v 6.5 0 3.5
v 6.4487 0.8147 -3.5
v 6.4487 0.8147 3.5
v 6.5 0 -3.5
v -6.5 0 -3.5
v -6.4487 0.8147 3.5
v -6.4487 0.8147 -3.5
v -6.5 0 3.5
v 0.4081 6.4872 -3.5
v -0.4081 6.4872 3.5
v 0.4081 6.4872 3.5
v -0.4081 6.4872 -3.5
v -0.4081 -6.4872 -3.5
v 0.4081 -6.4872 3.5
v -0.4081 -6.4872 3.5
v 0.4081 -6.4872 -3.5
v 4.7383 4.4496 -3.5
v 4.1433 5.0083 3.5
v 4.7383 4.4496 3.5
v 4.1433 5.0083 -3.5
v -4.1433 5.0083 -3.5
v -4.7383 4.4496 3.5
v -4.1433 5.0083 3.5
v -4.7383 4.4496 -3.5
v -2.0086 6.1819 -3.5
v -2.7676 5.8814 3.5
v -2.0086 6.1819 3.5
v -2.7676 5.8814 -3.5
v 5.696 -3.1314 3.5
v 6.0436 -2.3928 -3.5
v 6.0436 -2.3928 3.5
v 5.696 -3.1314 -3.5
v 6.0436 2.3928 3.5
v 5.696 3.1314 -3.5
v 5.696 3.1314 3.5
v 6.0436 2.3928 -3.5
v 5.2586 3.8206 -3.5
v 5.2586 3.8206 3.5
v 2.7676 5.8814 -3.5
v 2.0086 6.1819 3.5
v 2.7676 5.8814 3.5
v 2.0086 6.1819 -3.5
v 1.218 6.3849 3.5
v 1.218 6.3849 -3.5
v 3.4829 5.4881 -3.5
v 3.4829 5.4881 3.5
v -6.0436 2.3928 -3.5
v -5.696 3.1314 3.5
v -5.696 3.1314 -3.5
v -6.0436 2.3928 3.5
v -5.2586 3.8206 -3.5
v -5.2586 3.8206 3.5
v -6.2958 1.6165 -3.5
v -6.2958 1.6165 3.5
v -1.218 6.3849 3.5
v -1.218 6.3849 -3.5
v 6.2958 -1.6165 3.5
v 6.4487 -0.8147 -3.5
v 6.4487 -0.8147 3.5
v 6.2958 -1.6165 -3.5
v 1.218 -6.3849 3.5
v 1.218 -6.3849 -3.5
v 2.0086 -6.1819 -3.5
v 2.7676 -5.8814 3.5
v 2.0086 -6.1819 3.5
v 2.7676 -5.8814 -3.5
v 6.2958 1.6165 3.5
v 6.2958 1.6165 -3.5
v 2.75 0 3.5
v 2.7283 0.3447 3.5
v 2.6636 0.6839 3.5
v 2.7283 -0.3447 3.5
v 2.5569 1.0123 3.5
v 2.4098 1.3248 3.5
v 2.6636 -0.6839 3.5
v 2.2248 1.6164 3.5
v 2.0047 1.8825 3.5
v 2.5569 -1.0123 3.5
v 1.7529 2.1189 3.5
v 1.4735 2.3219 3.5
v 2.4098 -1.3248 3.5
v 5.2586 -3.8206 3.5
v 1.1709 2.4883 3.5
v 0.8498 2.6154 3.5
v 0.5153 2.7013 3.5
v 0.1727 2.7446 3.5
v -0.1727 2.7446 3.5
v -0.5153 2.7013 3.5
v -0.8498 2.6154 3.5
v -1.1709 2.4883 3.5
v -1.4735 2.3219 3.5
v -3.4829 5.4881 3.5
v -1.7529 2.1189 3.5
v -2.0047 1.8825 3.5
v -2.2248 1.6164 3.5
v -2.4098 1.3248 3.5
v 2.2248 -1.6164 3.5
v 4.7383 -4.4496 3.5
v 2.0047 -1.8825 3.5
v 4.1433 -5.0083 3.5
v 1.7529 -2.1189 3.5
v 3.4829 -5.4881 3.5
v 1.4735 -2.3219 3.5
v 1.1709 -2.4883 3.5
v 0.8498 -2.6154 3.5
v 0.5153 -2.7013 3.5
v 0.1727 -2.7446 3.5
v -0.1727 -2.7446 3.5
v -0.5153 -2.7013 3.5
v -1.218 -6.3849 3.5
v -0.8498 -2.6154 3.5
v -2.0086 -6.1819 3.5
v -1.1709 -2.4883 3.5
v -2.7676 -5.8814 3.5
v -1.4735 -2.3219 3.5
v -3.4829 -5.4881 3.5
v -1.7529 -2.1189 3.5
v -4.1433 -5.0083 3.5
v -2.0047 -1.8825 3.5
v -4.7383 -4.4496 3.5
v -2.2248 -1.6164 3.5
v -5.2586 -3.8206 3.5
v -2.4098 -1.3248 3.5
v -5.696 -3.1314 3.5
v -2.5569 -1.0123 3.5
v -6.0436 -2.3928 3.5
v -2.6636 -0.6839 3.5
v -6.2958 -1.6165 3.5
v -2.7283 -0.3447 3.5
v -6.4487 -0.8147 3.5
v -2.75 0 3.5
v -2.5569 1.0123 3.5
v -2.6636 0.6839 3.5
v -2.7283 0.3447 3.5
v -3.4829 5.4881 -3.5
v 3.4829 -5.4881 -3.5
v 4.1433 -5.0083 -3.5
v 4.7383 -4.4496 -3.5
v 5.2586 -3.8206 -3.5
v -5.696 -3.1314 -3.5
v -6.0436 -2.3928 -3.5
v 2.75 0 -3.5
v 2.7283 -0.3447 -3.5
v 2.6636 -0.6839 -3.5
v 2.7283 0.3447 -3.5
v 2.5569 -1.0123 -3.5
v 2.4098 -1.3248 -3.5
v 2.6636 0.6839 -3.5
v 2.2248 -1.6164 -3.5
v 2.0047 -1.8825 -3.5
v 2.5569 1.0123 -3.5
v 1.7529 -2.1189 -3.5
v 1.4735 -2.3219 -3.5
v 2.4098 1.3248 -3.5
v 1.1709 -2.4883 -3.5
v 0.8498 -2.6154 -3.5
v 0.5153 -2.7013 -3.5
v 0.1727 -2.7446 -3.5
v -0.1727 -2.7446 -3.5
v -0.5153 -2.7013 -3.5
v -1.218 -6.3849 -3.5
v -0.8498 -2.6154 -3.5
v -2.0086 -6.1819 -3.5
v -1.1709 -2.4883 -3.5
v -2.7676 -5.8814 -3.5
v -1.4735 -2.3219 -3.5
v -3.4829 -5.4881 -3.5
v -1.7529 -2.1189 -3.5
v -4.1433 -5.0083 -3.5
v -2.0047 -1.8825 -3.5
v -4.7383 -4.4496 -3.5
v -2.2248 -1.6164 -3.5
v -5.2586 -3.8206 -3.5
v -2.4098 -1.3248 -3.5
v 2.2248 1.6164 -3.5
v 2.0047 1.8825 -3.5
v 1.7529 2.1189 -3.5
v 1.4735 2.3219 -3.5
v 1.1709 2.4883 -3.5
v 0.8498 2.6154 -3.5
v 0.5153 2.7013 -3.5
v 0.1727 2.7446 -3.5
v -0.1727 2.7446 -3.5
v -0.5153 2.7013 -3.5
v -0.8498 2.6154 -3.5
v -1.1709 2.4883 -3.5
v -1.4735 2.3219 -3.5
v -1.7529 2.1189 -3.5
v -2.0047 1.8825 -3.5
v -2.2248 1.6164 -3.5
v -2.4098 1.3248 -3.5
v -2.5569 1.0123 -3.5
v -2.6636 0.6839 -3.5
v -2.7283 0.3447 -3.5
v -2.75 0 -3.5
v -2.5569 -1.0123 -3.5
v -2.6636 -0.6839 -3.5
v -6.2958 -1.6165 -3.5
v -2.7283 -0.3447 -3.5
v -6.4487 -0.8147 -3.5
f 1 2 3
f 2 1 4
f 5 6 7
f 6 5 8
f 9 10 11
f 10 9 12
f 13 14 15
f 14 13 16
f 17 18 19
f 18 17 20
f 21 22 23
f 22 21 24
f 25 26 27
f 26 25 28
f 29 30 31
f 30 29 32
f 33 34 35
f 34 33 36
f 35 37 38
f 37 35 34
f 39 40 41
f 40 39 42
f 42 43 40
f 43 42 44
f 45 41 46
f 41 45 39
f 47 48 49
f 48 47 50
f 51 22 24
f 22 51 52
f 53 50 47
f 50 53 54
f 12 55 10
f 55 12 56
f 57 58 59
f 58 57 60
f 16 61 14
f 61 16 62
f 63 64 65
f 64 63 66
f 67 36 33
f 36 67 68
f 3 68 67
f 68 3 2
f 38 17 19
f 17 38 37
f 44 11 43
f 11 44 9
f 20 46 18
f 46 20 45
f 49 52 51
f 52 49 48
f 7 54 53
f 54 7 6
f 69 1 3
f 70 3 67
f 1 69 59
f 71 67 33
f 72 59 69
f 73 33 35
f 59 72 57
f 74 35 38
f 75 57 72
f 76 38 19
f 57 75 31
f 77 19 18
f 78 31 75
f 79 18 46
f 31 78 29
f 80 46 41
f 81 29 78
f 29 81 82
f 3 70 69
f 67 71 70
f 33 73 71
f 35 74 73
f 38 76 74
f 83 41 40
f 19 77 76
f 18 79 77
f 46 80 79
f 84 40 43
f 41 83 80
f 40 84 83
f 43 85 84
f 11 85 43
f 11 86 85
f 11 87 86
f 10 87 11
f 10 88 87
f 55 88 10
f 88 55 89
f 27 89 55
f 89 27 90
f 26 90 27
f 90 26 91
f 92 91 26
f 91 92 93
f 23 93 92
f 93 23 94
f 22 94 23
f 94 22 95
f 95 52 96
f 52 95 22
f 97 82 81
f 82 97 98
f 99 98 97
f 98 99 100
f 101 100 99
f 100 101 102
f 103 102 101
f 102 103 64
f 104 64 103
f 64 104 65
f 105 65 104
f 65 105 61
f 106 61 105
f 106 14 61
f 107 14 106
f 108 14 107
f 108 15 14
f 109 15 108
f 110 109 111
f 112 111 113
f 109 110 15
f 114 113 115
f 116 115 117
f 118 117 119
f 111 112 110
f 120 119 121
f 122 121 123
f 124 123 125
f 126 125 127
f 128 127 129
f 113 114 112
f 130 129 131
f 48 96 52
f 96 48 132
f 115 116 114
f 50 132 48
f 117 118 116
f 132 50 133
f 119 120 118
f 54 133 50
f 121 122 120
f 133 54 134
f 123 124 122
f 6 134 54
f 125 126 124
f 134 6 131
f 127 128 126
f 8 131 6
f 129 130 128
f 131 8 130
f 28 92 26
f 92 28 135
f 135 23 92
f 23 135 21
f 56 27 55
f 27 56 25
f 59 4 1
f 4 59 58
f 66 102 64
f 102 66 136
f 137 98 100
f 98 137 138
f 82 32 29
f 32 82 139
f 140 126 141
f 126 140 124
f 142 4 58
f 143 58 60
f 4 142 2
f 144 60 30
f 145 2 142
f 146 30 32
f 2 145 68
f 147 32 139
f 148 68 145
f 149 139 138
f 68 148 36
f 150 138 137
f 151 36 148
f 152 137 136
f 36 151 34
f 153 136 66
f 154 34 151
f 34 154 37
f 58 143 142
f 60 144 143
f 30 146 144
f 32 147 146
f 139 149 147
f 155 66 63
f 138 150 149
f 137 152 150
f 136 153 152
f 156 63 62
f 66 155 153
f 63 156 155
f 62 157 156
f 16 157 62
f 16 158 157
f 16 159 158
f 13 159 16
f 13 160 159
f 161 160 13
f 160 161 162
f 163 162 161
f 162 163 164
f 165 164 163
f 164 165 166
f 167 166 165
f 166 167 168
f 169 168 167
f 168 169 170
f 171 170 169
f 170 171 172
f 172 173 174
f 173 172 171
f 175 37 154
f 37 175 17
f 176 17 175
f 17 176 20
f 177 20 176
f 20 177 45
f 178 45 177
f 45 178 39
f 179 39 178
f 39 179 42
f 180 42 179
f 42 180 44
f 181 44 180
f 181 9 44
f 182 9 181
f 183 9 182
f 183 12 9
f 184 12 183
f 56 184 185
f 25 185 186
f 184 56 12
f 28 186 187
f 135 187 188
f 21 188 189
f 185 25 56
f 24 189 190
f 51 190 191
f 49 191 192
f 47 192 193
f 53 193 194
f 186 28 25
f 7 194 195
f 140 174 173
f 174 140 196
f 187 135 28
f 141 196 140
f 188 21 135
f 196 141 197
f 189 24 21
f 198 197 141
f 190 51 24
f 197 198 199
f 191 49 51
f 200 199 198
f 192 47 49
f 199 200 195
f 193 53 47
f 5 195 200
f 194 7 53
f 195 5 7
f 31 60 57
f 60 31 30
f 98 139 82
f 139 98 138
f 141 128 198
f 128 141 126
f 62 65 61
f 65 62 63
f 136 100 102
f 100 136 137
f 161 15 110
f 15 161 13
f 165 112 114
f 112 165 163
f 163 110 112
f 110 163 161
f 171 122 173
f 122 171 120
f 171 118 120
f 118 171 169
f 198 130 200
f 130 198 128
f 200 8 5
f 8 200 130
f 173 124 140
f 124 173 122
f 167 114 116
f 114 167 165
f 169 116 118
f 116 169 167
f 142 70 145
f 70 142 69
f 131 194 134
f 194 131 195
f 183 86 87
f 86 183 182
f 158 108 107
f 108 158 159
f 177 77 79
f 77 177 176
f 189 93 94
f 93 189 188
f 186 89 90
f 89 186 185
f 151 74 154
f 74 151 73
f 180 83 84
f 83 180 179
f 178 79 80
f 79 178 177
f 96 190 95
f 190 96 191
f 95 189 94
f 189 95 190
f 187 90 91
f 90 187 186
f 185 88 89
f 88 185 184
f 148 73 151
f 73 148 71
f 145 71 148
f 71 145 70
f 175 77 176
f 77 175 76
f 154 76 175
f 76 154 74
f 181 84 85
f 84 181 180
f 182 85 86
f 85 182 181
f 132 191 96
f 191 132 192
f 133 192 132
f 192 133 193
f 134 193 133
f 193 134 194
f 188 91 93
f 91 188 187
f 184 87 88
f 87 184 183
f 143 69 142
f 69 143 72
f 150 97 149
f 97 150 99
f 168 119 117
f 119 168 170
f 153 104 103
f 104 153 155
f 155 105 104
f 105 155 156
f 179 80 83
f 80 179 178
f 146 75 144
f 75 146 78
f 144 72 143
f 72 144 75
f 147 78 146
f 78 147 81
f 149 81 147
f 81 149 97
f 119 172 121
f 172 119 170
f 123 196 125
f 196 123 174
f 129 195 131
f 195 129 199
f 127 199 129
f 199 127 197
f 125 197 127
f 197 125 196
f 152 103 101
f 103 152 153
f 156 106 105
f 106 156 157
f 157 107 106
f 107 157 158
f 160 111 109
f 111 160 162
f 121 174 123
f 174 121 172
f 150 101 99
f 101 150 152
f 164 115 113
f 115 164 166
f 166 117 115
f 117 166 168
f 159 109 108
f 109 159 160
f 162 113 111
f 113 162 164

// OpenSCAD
$fn = 50;


difference() {
	union() {
		translate(v = [0, 0, -3.5000000000]) {
			cylinder(h = 7, r = 6.5000000000);
		}
	}
	union() {
		translate(v = [0, 0, -100.0000000000]) {
			cylinder(h = 200, r = 2.7500000000);
		}
	}
}
